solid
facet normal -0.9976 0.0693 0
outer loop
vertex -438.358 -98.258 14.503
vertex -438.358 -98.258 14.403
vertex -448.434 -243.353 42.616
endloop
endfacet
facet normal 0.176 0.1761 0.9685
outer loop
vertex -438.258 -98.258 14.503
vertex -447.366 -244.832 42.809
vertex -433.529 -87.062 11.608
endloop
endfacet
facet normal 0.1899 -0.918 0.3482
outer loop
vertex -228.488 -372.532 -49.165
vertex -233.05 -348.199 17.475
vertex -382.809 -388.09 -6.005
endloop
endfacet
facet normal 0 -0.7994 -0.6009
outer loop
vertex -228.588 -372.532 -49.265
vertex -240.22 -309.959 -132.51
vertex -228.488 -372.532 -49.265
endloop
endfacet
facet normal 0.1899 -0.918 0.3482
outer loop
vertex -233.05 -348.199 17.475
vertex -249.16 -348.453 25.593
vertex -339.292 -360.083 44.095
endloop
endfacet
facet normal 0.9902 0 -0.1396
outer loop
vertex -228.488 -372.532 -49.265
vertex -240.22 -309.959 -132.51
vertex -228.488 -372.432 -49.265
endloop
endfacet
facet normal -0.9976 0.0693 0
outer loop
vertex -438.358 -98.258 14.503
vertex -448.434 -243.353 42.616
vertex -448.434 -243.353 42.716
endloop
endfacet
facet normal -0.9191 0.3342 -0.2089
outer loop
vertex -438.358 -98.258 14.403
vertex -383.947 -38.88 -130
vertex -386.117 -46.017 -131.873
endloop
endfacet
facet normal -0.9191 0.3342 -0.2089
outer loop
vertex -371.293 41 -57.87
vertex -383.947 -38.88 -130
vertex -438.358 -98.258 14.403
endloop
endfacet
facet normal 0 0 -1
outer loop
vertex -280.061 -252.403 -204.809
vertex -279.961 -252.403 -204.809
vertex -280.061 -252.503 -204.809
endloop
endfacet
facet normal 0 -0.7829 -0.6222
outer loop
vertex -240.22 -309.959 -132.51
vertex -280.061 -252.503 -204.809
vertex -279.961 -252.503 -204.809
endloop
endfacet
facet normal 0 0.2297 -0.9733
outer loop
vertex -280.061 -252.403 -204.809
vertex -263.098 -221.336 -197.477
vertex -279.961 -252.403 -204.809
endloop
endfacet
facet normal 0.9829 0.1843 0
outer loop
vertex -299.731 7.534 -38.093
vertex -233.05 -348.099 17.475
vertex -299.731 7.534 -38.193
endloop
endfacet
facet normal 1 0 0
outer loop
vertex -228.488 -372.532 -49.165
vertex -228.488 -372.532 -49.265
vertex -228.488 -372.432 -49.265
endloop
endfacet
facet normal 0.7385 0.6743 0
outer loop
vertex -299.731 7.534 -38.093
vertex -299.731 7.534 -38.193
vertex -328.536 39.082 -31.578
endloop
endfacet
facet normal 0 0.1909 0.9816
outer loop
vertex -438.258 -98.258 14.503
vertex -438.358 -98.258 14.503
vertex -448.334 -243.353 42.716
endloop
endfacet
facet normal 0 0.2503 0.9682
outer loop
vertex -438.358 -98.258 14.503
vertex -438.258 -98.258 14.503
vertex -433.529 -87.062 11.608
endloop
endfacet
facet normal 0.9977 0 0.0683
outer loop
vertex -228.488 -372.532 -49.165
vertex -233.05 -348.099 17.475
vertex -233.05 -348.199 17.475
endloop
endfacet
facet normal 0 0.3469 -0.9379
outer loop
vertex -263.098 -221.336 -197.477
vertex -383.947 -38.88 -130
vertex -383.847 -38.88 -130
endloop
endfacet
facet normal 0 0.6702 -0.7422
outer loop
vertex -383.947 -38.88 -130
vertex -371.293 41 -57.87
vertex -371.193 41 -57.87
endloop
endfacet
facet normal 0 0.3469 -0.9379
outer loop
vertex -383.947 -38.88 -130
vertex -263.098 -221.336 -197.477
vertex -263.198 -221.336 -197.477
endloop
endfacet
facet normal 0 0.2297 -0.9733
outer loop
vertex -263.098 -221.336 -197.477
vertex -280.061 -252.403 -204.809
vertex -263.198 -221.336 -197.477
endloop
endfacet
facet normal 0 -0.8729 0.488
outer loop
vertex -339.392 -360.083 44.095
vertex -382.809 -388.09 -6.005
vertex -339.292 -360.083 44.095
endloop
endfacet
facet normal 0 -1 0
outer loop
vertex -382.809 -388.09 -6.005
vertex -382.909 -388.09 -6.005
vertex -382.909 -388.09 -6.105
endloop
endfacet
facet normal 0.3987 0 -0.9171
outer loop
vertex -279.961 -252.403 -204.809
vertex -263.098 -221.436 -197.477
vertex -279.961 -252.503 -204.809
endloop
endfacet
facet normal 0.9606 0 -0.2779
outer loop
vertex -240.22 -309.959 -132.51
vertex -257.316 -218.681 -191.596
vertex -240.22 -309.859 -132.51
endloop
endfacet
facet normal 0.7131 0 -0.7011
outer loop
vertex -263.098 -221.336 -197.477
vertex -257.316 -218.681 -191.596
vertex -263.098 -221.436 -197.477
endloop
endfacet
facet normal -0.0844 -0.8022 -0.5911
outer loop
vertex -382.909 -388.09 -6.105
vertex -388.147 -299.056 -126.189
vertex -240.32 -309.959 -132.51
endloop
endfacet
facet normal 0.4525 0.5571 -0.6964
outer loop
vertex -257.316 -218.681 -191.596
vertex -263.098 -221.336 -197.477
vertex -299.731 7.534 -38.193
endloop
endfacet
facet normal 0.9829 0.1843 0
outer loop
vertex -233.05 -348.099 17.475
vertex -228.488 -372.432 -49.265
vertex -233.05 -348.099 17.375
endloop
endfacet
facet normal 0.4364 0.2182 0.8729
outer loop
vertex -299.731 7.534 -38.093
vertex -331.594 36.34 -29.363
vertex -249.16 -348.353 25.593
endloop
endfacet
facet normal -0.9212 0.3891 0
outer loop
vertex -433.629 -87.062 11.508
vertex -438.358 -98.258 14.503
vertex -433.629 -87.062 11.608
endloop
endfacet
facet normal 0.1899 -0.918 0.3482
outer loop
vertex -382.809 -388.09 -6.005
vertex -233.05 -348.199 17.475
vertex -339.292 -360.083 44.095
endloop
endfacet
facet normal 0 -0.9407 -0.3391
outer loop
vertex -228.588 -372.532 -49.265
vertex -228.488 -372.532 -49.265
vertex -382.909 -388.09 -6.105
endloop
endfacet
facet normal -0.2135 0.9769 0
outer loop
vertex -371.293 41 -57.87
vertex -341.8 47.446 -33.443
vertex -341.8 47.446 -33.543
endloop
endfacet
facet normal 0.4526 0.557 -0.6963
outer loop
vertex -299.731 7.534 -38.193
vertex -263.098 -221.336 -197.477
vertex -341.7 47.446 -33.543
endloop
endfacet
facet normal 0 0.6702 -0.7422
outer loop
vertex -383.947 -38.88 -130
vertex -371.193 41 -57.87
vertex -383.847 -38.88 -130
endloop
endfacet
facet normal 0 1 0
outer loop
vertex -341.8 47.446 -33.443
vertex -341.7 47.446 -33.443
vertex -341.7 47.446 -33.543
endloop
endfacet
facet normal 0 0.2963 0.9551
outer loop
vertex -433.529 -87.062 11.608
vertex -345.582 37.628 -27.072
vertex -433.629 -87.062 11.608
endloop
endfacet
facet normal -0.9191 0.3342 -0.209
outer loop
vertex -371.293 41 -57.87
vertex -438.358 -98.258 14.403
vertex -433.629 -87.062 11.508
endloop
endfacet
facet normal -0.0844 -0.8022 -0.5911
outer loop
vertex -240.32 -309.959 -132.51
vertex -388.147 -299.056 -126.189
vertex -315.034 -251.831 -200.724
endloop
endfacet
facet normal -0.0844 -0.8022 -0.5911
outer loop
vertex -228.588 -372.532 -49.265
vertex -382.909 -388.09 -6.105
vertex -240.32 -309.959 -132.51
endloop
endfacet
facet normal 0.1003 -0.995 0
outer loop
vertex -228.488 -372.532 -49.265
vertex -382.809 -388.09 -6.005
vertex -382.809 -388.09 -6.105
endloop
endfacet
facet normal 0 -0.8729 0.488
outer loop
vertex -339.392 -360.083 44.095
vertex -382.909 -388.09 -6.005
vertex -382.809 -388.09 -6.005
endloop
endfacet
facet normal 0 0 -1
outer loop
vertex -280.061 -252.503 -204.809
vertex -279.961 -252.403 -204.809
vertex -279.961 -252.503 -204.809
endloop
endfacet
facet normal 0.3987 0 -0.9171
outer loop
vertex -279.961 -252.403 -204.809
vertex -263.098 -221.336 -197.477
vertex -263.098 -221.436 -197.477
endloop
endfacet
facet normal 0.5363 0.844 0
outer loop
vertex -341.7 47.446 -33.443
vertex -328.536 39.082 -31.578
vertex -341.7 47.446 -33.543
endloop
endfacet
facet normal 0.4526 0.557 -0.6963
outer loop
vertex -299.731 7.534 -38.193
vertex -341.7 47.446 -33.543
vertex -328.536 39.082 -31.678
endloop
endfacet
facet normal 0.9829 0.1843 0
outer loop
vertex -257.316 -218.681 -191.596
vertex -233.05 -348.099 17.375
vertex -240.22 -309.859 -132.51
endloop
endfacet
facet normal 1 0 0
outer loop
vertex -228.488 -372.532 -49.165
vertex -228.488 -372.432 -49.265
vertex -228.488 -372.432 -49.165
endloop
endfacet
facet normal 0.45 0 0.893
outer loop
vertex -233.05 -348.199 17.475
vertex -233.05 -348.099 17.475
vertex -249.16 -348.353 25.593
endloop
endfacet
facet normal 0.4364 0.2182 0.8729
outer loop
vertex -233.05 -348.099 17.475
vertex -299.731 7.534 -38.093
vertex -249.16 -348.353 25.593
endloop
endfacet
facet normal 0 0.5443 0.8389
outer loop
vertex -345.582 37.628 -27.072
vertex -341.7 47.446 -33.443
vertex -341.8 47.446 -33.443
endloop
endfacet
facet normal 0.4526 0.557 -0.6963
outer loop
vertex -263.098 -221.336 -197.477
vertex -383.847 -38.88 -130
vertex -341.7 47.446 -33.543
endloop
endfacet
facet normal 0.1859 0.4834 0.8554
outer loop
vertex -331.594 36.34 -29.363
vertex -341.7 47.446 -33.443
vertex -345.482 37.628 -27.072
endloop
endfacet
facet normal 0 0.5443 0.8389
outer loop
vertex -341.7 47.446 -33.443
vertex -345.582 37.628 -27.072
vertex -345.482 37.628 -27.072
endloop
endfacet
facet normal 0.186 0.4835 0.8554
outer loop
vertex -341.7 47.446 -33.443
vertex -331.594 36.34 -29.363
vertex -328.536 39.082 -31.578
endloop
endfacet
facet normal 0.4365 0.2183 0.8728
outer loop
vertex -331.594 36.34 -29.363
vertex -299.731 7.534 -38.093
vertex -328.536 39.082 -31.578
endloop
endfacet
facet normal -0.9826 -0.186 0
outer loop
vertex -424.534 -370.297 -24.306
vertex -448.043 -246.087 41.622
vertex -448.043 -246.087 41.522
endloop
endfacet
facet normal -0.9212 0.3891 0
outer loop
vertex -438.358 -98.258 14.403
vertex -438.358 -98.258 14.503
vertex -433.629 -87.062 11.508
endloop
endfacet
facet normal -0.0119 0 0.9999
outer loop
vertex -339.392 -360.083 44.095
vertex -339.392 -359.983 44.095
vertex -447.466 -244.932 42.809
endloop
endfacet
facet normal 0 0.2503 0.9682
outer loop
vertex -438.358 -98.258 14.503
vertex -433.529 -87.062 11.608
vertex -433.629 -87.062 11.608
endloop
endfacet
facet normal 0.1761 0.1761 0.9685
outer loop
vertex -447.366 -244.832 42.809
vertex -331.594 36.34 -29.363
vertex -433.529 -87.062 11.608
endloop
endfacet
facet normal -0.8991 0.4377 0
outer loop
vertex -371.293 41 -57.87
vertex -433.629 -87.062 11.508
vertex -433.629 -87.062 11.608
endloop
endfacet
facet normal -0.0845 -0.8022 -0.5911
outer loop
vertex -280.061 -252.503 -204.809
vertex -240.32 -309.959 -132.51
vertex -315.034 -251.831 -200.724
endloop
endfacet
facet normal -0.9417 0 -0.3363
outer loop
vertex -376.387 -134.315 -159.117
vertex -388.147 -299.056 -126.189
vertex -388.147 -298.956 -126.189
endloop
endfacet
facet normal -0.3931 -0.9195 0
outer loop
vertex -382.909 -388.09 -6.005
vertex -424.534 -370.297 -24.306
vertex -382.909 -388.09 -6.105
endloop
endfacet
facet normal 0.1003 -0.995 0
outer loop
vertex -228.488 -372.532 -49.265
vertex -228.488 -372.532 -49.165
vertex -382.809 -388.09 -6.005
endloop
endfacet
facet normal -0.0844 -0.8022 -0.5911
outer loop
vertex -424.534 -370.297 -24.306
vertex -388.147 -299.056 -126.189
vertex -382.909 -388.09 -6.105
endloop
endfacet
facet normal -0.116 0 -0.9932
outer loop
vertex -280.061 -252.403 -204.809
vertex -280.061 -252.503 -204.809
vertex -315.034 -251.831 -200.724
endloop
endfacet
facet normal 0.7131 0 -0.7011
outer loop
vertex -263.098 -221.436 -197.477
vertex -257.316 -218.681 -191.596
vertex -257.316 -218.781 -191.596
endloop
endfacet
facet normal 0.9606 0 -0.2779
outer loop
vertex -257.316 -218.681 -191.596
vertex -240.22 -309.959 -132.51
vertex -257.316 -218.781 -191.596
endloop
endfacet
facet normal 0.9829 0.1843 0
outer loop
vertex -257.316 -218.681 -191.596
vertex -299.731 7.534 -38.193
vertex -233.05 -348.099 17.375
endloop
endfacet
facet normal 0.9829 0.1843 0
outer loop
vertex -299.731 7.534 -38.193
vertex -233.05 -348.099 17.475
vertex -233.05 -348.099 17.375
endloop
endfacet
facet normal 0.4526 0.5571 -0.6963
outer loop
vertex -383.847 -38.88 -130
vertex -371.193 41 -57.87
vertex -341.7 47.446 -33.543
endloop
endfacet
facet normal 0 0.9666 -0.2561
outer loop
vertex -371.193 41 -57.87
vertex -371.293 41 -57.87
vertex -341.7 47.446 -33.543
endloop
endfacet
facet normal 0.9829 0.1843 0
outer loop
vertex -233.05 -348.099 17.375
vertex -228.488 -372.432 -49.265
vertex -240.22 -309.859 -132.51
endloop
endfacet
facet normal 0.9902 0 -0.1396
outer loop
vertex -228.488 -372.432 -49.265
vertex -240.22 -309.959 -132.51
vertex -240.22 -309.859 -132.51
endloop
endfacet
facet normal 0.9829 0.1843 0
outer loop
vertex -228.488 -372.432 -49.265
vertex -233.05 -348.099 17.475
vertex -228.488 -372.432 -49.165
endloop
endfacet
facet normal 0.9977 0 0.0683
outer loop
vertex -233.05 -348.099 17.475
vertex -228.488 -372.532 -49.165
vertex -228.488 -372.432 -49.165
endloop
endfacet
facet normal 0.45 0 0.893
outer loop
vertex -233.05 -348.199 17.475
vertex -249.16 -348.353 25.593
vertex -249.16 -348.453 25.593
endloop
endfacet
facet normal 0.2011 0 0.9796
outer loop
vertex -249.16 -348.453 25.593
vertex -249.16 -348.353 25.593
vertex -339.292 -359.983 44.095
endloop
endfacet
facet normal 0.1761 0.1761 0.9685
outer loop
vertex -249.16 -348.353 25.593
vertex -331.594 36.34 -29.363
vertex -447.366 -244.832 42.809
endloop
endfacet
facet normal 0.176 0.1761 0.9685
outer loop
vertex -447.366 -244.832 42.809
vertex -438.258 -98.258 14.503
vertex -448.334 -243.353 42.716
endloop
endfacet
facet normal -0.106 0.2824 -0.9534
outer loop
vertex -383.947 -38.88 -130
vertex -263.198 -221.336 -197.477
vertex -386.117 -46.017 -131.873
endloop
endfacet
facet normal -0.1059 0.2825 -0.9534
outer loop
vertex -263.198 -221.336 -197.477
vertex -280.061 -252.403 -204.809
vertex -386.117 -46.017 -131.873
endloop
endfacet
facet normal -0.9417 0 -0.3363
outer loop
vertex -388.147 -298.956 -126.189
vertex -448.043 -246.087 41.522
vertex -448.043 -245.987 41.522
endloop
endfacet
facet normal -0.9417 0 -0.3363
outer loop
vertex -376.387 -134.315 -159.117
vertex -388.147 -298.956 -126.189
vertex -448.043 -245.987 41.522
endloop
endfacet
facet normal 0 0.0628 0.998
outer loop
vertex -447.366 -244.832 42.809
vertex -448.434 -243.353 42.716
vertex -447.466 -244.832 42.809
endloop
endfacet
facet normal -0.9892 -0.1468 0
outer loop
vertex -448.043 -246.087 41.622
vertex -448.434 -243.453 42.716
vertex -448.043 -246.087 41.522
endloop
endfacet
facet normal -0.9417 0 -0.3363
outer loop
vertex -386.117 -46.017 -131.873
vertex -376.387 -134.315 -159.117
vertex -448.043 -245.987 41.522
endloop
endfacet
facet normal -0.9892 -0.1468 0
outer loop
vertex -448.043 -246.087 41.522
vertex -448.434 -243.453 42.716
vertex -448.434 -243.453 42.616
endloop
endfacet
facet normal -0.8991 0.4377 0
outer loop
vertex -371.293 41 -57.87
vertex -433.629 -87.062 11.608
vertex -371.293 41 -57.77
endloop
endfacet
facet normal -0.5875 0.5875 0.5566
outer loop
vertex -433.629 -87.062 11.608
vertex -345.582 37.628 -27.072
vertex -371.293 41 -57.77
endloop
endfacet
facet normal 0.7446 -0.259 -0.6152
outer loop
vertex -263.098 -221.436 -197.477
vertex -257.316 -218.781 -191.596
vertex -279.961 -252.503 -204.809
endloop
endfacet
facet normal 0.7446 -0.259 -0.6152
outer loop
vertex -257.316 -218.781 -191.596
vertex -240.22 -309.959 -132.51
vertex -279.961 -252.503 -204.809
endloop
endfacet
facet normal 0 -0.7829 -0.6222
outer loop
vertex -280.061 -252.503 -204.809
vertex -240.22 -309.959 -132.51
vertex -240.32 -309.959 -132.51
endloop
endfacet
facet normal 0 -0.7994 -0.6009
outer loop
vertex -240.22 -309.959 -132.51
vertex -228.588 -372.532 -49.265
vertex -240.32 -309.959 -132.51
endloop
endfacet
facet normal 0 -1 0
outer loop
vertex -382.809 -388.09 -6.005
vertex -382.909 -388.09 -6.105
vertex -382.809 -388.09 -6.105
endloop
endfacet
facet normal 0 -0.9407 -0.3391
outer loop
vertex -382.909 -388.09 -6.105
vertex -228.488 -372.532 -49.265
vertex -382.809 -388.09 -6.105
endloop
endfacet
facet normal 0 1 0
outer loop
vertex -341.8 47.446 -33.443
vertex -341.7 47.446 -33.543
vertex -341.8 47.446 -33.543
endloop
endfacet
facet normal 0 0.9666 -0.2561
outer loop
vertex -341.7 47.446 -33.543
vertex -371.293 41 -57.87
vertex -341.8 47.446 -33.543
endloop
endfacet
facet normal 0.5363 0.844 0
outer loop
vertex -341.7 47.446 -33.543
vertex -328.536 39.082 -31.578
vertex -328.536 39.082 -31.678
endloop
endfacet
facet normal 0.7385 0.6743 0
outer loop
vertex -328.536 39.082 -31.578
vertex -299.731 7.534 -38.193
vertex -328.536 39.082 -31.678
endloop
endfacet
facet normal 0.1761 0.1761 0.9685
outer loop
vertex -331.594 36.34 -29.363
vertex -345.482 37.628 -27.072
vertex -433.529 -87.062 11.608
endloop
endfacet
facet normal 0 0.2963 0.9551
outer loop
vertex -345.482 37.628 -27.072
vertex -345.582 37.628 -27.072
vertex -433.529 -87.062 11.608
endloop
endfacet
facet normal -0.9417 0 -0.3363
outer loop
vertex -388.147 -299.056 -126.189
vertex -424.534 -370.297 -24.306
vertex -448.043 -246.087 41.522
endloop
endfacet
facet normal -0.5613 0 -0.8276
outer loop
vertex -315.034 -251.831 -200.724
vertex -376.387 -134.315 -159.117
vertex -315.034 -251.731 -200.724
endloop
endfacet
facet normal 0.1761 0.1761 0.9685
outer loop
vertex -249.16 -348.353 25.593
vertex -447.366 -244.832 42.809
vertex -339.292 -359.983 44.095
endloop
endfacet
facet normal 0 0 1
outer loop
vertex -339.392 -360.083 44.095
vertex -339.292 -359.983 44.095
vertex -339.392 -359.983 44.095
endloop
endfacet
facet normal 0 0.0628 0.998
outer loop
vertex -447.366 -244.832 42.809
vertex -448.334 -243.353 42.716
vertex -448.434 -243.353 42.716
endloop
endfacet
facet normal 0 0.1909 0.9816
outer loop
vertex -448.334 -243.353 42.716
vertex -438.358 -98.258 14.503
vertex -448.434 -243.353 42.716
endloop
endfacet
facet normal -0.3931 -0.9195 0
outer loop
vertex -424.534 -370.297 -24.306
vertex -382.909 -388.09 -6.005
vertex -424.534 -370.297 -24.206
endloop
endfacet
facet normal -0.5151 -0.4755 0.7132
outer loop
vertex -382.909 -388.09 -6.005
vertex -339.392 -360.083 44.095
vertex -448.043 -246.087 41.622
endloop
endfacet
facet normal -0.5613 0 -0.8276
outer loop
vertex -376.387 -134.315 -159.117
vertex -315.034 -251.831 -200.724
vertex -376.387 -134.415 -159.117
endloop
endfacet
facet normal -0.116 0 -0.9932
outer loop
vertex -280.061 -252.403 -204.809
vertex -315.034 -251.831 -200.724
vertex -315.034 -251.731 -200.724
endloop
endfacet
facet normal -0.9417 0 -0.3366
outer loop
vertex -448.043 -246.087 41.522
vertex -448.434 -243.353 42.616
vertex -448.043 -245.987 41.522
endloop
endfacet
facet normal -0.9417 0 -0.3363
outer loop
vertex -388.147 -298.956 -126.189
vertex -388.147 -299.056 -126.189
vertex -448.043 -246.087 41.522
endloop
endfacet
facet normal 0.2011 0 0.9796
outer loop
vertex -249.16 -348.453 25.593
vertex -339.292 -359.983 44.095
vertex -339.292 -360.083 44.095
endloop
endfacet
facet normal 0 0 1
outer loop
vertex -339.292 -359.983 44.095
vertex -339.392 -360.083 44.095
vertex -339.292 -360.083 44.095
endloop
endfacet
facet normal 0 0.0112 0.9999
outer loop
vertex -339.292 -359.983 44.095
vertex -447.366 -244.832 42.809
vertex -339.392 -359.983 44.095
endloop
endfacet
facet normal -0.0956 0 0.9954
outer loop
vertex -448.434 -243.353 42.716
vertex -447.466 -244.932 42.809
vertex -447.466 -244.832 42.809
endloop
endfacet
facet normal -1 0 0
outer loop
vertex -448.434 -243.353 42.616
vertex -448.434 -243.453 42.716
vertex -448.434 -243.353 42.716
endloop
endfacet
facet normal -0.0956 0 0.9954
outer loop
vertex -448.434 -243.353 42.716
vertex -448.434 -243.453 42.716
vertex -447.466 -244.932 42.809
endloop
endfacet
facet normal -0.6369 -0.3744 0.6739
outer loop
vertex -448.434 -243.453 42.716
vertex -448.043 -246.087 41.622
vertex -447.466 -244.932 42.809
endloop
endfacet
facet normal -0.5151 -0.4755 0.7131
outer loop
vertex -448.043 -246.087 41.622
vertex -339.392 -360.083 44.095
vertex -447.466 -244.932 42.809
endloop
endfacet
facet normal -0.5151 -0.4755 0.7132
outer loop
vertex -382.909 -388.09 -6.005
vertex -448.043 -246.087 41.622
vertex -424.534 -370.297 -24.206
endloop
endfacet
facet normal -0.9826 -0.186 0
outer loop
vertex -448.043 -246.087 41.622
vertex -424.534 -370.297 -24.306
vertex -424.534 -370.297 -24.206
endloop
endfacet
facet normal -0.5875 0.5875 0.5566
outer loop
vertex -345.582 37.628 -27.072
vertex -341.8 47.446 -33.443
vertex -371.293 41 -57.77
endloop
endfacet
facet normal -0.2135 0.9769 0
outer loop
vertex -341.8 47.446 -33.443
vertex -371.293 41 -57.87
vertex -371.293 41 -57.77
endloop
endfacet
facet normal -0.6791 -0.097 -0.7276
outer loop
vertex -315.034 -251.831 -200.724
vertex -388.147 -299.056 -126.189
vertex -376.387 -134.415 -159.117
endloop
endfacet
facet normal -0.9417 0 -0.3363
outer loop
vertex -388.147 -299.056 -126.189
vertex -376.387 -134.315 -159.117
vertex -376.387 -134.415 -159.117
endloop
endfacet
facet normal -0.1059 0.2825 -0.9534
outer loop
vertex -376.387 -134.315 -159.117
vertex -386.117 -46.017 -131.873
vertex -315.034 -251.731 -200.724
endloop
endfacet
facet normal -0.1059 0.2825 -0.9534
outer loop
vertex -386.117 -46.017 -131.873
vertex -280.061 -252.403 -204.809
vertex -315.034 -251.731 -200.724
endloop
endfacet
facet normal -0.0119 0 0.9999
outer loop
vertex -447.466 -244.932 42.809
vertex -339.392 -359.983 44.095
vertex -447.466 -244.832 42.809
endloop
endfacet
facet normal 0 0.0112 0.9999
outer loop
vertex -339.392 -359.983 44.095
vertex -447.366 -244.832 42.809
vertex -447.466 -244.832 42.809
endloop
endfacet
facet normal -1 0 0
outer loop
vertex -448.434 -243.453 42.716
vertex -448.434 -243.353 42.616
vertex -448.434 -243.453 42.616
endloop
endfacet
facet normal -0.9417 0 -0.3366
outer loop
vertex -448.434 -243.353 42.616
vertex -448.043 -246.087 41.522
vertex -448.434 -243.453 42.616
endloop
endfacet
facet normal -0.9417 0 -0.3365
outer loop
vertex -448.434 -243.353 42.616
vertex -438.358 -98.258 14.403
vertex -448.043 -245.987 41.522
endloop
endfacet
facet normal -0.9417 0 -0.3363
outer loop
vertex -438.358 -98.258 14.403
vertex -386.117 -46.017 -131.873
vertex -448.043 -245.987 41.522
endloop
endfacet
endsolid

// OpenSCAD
hull(){ translate([-263.198198198,-221.435810811,-197.477477477])cube(0.1,0.1,0.1);
translate([-280.060537268,-252.502837684,-204.808929247])cube(0.1,0.1,0.1);
translate([-382.908745247,-388.089987326,-6.1051964512])cube(0.1,0.1,0.1);
translate([-249.260089686,-348.452914798,25.4932735426])cube(0.1,0.1,0.1);
translate([-339.391576917,-360.082784118,43.99533837])cube(0.1,0.1,0.1);
translate([-424.53361599,-370.297395518,-24.3058752271])cube(0.1,0.1,0.1);
translate([-328.63561418,38.9818631492,-31.6776586974])cube(0.1,0.1,0.1);
translate([-331.694214876,36.2396694215,-29.4628099174])cube(0.1,0.1,0.1);
translate([-341.800290324,47.3460443303,-33.5433532466])cube(0.1,0.1,0.1);
translate([-345.58210252,37.5282363162,-27.1720243267])cube(0.1,0.1,0.1);
translate([-383.947368421,-38.9802631579,-130.0])cube(0.1,0.1,0.1);
translate([-386.11662531,-46.1166253102,-131.873449132])cube(0.1,0.1,0.1);
translate([-371.293066388,40.9000184241,-57.8704784131])cube(0.1,0.1,0.1);
translate([-433.628922237,-87.1623465211,11.5075034106])cube(0.1,0.1,0.1);
translate([-438.358208955,-98.3582089552,14.4029850746])cube(0.1,0.1,0.1);
translate([-315.03407155,-251.831345826,-200.724020443])cube(0.1,0.1,0.1);
translate([-376.386782232,-134.414951246,-159.117009751])cube(0.1,0.1,0.1);
translate([-388.146853147,-299.055944056,-126.188811189])cube(0.1,0.1,0.1);
translate([-447.466019417,-244.932038835,42.7087378641])cube(0.1,0.1,0.1);
translate([-448.043478261,-246.086956522,41.5217391304])cube(0.1,0.1,0.1);
translate([-448.434247871,-243.453169347,42.6158940397])cube(0.1,0.1,0.1);
translate([-233.150147203,-348.199214917,17.3748773307])cube(0.1,0.1,0.1);
translate([-257.415974203,-218.781470917,-191.595559965])cube(0.1,0.1,0.1);
translate([-299.831460674,7.43445692884,-38.1928838951])cube(0.1,0.1,0.1);
translate([-240.320247934,-309.958677686,-132.510330579])cube(0.1,0.1,0.1);
translate([-228.587672053,-372.532415719,-49.2649112308])cube(0.1,0.1,0.1); }
